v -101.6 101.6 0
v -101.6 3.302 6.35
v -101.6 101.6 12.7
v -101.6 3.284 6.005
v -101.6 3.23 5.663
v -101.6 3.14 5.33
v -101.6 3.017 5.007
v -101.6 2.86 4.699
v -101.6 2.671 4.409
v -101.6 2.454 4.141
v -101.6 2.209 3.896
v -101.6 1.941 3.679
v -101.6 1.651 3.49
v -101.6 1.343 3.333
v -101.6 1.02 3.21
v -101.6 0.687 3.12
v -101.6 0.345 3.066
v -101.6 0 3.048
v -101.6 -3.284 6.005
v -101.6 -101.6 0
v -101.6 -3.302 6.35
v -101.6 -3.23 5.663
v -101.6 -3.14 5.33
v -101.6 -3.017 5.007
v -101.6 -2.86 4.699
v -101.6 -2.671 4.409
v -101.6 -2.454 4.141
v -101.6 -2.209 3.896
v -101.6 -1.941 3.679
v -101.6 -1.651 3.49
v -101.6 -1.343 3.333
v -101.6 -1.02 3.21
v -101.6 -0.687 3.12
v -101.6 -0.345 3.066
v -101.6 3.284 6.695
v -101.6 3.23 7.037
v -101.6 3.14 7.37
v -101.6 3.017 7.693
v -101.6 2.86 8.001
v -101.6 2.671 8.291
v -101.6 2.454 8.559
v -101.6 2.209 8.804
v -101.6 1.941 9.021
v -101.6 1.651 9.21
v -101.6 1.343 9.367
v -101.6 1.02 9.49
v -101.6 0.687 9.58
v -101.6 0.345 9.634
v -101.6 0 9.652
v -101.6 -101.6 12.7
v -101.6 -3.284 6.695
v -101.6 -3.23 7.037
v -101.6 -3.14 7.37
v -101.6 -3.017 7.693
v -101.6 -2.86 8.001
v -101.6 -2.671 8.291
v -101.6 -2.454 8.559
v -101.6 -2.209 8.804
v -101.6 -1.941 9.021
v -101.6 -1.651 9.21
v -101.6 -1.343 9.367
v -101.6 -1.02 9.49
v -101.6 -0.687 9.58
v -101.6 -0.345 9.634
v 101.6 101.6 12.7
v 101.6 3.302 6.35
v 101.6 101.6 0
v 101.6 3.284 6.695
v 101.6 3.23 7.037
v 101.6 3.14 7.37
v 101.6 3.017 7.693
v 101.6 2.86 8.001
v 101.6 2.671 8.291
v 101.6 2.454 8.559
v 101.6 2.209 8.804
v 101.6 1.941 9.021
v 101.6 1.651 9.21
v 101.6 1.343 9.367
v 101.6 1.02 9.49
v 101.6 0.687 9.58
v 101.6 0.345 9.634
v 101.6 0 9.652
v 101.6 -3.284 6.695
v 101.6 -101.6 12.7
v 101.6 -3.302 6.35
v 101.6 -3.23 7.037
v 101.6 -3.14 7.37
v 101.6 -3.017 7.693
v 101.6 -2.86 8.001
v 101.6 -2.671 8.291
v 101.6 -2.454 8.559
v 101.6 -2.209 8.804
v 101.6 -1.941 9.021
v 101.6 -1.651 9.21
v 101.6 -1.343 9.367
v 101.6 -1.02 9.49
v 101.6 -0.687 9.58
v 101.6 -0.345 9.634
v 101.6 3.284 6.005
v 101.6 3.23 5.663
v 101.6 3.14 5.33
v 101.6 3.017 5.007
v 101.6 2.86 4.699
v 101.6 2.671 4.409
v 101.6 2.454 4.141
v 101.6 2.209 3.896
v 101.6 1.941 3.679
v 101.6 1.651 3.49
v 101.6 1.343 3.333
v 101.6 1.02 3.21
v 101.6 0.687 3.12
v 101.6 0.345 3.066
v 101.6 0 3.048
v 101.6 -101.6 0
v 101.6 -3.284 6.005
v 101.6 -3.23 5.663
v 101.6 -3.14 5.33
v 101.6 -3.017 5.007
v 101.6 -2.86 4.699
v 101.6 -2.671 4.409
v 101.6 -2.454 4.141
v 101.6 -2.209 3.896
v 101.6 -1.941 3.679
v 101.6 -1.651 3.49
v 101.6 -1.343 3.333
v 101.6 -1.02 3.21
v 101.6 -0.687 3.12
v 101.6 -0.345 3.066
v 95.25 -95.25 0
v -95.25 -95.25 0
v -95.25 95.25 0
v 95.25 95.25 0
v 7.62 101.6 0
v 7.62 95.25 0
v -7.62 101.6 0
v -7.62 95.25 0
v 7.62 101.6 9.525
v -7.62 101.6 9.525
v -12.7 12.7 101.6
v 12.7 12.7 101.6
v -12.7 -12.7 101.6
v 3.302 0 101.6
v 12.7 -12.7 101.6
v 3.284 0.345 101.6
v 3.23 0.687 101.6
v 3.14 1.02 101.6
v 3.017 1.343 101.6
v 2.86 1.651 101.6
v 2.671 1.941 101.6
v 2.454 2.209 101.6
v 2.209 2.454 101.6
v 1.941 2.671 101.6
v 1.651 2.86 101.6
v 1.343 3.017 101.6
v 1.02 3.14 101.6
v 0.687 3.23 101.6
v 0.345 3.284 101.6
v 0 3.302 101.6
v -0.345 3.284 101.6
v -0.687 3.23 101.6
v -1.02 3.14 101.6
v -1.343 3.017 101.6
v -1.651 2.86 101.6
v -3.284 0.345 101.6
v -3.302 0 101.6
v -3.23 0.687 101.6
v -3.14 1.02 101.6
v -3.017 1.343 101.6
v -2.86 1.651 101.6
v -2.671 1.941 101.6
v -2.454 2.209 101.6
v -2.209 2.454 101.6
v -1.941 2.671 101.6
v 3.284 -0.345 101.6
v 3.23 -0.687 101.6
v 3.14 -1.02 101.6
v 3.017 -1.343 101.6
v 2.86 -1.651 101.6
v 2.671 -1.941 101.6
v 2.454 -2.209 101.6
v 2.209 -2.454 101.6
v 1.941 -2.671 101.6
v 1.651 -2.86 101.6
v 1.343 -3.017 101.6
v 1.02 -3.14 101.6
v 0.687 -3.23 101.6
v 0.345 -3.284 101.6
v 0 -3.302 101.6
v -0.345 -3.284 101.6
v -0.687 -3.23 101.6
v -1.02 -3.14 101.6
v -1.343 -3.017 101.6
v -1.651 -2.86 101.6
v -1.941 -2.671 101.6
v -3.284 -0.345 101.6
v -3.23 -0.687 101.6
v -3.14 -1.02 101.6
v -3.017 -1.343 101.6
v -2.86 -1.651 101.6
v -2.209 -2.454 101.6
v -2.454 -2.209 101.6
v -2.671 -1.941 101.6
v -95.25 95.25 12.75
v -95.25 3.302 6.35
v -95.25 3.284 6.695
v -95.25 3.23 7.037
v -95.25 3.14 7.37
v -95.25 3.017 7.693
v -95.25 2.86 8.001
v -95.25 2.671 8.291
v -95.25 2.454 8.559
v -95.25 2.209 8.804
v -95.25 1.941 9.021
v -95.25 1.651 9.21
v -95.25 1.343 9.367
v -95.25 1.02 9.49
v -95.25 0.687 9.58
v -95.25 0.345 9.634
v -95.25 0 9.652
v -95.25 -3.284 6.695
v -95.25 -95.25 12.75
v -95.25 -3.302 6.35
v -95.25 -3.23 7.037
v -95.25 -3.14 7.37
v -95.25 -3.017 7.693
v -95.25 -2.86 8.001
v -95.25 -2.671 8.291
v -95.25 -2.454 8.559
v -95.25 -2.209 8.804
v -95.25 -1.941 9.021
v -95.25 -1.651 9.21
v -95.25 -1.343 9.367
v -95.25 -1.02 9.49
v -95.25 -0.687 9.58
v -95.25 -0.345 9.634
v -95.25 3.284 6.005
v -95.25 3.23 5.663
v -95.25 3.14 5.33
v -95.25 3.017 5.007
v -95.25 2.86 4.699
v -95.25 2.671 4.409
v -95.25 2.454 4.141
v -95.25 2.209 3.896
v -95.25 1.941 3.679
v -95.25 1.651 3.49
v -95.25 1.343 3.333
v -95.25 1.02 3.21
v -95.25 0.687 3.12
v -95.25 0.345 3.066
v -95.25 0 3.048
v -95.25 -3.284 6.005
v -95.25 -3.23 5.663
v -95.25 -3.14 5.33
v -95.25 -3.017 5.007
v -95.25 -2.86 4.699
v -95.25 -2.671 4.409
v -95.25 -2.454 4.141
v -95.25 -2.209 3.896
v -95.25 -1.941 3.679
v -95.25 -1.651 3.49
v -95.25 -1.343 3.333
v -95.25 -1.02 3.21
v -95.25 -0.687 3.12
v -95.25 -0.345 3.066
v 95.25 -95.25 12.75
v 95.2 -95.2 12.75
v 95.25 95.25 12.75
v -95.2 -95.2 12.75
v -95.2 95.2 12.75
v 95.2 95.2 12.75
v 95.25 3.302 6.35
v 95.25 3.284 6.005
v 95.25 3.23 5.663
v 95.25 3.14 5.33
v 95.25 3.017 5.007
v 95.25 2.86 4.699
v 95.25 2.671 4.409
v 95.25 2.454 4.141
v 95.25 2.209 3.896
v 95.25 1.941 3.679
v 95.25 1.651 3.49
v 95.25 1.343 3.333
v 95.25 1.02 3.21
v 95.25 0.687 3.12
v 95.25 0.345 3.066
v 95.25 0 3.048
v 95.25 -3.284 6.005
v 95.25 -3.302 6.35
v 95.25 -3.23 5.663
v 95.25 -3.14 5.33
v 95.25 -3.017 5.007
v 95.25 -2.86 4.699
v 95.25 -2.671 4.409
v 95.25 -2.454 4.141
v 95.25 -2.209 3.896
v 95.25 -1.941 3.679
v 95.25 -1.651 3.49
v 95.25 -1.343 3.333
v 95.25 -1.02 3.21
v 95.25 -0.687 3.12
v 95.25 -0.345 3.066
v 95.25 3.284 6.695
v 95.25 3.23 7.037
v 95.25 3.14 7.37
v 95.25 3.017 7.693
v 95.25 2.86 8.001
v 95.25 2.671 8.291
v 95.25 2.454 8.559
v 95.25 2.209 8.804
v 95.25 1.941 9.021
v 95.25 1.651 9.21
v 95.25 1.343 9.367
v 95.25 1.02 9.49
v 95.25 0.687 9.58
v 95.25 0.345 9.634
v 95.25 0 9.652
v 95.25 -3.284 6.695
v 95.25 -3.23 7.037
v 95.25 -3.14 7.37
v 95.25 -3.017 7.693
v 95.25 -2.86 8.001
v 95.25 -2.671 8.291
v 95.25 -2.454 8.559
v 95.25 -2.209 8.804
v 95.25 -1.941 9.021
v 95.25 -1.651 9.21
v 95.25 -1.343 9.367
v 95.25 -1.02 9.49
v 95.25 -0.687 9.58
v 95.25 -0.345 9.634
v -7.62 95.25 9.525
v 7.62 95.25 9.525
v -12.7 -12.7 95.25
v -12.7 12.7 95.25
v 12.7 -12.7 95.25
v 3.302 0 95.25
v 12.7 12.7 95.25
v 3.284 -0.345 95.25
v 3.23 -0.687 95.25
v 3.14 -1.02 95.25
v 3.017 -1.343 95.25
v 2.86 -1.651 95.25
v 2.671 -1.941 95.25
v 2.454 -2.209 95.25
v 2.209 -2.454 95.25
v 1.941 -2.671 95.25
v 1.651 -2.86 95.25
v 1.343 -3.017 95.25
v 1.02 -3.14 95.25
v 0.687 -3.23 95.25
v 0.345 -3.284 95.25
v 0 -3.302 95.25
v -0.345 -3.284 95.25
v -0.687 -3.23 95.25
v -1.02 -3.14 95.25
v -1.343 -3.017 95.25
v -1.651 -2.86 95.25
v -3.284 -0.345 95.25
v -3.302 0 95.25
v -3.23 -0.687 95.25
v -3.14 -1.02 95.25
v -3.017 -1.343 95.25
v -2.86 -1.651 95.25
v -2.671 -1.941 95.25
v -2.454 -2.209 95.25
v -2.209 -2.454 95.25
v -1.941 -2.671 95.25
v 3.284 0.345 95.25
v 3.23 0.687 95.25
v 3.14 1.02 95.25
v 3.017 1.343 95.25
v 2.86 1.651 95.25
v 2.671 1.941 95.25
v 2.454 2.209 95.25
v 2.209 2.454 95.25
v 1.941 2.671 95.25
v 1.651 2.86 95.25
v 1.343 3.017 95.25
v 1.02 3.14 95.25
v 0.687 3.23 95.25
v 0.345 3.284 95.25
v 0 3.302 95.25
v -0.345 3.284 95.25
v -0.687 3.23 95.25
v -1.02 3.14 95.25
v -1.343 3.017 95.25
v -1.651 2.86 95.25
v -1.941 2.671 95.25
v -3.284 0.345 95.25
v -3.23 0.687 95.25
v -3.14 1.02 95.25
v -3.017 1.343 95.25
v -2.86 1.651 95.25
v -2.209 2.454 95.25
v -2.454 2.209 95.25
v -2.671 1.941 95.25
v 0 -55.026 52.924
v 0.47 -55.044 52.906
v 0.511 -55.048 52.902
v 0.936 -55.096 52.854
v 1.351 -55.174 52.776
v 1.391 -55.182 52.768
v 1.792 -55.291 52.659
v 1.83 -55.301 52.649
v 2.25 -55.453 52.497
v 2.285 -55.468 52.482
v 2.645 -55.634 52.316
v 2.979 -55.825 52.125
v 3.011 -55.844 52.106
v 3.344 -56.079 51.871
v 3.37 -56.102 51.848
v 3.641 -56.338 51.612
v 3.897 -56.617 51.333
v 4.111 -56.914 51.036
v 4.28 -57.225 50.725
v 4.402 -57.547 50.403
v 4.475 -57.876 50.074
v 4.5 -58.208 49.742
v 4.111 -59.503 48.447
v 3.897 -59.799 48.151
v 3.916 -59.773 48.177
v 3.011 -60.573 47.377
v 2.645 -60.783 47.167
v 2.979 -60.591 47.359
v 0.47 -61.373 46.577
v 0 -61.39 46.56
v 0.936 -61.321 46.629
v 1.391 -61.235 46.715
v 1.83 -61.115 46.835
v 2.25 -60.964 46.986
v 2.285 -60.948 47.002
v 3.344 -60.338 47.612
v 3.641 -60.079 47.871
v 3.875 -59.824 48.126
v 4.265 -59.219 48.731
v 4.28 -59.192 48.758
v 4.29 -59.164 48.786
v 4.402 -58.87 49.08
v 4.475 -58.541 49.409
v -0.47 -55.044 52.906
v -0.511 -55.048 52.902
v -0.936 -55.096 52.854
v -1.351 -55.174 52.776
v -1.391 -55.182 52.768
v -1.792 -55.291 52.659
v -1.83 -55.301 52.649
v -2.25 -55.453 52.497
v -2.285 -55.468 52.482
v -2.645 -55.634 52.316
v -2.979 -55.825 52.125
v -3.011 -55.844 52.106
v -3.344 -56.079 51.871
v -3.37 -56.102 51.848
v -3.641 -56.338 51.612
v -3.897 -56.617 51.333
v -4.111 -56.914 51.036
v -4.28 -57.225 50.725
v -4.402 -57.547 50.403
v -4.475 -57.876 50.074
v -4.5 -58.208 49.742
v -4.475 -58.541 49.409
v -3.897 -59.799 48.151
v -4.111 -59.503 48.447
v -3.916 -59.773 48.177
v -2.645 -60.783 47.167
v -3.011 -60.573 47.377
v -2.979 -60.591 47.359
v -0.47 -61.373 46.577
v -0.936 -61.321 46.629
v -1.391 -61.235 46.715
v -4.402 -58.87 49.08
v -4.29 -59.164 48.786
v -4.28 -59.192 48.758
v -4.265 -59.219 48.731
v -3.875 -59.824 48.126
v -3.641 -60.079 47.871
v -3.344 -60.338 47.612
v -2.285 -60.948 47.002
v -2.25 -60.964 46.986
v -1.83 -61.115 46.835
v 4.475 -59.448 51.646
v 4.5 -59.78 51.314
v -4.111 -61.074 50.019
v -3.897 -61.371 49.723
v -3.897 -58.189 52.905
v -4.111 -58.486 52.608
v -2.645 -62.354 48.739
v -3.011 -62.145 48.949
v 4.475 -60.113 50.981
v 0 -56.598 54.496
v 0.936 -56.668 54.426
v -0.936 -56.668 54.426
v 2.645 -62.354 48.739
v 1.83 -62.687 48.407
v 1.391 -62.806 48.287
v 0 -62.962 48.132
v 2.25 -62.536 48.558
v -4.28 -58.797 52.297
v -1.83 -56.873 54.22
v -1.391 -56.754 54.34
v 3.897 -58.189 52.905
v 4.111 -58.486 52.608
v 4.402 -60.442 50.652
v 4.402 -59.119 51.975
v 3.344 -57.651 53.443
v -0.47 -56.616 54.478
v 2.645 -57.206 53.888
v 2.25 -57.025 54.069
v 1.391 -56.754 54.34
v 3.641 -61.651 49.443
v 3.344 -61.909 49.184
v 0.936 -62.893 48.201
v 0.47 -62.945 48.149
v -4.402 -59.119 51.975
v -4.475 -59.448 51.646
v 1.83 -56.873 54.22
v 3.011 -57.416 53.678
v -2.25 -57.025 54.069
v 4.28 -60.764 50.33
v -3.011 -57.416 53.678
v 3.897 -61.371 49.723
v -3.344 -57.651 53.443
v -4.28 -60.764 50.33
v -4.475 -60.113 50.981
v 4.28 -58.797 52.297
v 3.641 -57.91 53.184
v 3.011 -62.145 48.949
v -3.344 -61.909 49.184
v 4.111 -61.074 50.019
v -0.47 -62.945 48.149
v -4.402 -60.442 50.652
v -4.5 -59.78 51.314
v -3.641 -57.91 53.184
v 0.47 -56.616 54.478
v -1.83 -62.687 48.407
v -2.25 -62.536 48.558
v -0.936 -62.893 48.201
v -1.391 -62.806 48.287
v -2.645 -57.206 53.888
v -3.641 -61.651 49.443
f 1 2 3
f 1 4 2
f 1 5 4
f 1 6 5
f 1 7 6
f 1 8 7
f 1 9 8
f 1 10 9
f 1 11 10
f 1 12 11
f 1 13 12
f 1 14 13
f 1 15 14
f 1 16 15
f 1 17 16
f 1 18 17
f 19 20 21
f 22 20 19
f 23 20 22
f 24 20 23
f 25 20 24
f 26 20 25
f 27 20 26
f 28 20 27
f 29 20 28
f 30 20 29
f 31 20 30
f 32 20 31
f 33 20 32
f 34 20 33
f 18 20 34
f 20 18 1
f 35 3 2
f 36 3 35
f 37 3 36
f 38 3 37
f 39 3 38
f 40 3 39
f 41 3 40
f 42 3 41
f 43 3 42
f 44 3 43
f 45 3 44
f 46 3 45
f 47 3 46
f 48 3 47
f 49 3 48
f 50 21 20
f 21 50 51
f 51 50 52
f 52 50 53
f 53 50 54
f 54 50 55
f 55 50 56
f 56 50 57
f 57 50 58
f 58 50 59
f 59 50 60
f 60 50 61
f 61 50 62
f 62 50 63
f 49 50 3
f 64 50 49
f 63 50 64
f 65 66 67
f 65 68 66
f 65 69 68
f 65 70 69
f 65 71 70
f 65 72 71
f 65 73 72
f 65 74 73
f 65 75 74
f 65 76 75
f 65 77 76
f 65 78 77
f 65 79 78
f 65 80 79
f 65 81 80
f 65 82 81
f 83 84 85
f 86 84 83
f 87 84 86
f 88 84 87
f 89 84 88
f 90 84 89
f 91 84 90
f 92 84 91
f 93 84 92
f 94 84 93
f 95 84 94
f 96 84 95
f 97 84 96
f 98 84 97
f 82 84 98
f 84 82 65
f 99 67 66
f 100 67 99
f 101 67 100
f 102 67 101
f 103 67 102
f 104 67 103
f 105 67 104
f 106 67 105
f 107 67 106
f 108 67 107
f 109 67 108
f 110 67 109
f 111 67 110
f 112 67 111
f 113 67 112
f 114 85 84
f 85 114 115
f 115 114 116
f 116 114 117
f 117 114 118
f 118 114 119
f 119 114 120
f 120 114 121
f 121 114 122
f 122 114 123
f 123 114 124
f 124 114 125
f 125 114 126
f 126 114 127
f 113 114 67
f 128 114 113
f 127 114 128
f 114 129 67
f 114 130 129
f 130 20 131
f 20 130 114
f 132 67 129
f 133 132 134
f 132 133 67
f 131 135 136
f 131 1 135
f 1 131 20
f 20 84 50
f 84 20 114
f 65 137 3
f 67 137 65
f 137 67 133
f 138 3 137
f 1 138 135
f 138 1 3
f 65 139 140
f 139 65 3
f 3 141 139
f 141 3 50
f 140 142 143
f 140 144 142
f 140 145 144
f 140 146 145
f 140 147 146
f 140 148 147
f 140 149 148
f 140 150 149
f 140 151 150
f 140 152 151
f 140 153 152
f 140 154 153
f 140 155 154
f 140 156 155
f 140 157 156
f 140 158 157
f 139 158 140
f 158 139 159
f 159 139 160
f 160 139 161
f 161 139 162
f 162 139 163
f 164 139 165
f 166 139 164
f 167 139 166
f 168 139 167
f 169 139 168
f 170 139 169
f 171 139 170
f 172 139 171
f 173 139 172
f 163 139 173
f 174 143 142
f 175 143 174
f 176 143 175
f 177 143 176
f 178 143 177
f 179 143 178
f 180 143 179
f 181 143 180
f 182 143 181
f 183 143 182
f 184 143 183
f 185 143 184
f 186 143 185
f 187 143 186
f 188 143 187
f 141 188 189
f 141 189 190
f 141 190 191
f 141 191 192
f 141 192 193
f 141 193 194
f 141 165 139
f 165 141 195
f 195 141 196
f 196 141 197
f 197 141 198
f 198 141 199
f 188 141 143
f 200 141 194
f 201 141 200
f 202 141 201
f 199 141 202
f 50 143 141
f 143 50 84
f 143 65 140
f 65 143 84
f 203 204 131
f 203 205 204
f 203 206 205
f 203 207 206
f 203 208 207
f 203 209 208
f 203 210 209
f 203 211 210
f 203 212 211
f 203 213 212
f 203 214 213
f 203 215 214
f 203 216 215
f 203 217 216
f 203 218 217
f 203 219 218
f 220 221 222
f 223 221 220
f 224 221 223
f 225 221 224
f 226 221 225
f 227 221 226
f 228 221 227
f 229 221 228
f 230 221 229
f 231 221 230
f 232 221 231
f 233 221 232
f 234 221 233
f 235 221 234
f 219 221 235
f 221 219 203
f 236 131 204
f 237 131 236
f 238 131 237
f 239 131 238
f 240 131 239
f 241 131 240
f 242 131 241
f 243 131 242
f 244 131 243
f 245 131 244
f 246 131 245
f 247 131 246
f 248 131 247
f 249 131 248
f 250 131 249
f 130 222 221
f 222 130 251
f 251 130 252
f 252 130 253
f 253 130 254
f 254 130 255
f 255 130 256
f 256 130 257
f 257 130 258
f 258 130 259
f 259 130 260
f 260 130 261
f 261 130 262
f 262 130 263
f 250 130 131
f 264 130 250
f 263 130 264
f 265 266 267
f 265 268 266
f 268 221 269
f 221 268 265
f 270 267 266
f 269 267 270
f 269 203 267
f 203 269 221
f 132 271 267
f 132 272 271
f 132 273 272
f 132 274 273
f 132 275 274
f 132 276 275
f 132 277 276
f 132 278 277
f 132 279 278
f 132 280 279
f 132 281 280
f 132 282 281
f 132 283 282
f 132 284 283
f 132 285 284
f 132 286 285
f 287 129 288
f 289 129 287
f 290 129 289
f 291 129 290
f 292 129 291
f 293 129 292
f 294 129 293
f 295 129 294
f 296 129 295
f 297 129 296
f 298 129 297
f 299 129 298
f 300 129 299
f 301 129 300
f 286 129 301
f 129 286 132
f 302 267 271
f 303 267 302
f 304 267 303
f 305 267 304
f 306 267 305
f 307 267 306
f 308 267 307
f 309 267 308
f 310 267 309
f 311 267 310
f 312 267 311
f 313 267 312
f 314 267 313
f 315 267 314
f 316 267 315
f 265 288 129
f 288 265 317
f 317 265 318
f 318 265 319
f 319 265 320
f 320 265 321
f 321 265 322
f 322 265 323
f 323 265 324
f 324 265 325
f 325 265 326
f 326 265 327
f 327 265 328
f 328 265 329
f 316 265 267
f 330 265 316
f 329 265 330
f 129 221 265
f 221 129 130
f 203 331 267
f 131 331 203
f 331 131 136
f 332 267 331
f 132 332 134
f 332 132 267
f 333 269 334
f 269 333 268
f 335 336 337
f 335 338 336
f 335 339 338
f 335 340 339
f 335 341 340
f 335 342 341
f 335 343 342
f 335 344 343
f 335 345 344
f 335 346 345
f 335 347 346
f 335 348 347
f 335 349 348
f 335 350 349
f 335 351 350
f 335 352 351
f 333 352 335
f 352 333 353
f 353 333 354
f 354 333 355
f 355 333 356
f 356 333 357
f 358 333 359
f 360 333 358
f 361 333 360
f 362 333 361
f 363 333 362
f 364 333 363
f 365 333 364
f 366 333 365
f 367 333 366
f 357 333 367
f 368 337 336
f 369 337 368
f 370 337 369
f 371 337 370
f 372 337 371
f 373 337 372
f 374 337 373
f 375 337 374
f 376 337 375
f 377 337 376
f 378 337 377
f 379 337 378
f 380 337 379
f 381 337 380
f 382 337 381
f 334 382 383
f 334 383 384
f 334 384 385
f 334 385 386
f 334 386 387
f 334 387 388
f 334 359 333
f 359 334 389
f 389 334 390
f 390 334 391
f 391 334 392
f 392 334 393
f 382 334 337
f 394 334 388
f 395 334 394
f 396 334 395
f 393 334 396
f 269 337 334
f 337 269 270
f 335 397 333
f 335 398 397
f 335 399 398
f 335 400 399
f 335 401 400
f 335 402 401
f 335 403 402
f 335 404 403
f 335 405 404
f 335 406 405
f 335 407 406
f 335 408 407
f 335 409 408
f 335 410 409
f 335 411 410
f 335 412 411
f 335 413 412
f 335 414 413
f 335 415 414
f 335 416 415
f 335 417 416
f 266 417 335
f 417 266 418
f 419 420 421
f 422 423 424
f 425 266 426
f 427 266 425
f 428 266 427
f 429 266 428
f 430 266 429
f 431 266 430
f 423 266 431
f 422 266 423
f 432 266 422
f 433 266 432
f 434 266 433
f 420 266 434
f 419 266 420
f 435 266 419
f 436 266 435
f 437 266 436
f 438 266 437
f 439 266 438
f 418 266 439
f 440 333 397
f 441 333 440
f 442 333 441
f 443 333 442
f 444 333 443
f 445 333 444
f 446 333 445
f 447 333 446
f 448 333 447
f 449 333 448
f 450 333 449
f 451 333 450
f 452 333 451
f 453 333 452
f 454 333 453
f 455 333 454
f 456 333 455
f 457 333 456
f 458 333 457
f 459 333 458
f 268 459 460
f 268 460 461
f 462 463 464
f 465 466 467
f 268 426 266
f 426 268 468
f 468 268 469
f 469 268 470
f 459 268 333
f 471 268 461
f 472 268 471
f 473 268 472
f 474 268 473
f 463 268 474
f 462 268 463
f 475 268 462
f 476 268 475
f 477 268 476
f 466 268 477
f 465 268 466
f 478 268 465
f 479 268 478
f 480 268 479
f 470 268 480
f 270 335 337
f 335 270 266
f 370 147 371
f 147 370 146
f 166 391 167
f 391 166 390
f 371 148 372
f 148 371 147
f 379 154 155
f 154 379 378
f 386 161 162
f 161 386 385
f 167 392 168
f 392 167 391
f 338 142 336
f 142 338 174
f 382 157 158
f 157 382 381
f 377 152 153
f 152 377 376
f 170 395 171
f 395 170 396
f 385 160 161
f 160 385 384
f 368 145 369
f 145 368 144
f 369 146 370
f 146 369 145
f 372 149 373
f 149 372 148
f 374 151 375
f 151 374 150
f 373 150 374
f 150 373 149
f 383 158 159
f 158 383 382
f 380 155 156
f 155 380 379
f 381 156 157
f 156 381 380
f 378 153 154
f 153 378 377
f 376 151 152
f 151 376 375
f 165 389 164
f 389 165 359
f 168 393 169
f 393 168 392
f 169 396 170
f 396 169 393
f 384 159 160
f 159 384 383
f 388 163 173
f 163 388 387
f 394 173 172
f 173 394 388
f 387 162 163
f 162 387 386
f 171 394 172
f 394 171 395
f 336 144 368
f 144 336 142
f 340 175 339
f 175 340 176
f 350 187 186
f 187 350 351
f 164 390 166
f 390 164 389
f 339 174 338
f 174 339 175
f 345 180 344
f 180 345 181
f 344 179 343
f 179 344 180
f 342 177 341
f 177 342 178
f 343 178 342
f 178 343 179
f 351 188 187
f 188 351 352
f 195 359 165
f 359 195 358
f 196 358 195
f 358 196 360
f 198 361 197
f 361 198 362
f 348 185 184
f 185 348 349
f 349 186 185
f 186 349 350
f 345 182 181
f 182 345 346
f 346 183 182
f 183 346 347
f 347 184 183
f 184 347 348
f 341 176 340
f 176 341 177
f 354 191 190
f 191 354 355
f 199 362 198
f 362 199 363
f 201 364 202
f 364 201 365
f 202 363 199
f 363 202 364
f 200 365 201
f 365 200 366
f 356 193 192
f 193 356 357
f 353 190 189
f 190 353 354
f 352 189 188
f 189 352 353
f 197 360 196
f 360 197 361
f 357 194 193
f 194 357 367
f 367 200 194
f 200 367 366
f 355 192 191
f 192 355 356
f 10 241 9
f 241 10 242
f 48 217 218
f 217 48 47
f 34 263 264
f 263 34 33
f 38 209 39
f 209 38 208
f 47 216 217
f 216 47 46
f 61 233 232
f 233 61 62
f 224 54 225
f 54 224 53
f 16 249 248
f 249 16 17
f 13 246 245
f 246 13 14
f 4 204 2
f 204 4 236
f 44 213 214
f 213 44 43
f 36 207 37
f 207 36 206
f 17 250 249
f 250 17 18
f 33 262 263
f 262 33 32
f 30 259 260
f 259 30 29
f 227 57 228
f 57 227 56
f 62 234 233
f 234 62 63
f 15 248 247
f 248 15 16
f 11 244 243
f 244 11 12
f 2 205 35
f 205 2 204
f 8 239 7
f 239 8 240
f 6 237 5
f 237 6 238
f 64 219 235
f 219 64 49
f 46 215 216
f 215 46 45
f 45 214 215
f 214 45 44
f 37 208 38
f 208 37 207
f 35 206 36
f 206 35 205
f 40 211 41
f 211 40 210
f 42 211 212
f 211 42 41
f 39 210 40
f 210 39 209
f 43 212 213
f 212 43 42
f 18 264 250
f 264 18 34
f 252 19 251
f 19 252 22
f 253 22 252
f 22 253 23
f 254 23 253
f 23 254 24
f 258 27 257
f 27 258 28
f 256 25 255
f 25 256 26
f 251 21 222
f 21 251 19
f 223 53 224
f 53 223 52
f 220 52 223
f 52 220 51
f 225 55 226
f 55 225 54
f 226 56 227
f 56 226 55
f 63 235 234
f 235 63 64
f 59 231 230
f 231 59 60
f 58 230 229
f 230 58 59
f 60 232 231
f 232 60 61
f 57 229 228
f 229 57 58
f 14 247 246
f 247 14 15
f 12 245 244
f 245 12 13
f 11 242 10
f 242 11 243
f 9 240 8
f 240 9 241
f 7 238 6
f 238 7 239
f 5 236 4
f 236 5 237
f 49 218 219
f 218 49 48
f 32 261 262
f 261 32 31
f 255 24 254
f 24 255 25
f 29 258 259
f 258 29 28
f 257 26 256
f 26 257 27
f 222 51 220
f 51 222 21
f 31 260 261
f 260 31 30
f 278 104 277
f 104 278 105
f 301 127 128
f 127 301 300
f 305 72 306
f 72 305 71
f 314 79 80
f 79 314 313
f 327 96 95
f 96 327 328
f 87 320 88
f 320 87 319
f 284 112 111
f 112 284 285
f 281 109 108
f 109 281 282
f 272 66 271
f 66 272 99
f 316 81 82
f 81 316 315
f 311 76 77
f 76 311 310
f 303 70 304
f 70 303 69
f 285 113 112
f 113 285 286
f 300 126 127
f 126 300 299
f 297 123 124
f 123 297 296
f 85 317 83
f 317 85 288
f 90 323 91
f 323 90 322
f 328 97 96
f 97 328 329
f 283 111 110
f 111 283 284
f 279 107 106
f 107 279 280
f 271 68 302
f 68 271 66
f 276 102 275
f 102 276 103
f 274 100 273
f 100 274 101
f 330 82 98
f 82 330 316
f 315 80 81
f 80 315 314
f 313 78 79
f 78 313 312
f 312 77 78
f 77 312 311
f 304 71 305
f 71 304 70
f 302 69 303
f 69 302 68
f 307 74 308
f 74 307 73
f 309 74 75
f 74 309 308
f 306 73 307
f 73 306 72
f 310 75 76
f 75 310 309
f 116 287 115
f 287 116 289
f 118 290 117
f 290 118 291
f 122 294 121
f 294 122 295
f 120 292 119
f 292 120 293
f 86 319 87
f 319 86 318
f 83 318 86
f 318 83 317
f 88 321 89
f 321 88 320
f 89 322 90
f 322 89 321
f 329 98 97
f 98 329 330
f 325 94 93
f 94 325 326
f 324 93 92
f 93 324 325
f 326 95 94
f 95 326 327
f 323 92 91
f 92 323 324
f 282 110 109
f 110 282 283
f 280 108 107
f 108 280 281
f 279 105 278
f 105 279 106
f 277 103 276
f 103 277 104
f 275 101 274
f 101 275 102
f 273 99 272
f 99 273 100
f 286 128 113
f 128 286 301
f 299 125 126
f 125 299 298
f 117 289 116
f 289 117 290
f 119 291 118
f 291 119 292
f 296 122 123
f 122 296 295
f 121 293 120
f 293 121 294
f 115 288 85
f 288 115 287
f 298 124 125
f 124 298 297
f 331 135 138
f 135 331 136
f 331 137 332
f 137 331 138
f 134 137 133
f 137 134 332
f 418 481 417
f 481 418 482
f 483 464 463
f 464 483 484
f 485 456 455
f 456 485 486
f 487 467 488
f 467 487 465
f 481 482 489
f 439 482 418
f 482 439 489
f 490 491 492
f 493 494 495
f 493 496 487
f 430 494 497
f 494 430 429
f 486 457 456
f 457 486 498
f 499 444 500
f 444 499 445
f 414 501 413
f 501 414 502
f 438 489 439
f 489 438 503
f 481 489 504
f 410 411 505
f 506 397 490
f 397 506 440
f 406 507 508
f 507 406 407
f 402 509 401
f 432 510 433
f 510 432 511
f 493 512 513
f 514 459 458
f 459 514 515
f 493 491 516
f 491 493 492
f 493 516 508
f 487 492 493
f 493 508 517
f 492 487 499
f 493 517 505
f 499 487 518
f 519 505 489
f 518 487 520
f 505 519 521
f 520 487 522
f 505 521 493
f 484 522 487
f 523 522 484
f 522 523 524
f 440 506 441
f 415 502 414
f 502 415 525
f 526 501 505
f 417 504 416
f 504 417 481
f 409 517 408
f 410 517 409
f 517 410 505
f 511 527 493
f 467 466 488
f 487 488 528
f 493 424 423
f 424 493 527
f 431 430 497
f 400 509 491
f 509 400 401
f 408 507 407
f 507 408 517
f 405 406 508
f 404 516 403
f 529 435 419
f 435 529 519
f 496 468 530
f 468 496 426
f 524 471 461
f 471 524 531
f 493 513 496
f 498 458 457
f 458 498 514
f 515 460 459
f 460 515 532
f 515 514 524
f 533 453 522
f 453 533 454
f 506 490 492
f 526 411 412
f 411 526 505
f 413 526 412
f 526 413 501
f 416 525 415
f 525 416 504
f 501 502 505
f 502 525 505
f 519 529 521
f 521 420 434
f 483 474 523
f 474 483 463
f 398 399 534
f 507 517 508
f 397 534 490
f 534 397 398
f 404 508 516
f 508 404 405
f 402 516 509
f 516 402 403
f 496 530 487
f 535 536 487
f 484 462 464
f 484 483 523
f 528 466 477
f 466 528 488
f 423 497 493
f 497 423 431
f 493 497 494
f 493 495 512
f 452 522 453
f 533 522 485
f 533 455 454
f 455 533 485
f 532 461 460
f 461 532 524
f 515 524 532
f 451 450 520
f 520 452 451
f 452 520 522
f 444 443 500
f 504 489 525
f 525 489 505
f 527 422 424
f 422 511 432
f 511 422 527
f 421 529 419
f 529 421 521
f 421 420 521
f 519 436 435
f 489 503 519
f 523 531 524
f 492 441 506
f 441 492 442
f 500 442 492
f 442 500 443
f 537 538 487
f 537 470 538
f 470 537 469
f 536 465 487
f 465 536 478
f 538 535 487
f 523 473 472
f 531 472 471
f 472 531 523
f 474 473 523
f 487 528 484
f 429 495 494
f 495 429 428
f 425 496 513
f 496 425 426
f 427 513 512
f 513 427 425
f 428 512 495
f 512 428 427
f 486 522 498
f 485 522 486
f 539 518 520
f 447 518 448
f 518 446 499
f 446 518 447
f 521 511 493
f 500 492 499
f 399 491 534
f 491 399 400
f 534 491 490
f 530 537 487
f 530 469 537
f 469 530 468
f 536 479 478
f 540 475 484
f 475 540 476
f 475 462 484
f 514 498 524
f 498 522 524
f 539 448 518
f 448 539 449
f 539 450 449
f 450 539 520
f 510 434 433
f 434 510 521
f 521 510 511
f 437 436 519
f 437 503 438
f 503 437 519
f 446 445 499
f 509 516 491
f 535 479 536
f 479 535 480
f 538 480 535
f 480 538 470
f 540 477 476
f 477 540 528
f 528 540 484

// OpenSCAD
// All-Seeing Eye Enclosure Design
// Unit: mm (Converted from freedom units)

/* [Global Dimensions] */
INCH = 25.4;

// Base Specifications
// 8.0 inches (203.2 mm) outer width
base_width = 8.0 * INCH;
base_height = 0.5 * INCH;
wall_thickness = 0.25 * INCH;

// Pyramid Specifications
// Slope is 45 degrees.
slope_angle = 45; 

// Top flat area for SMA connector
top_width = 1.0 * INCH; 

// Calculate pyramid height based on slope and top width
// height = run * tan(angle). Since angle is 45, tan is 1.
pyramid_height = (base_width - top_width) / 2;

/* [Interface Dimensions] */
// Connector Dimensions
sma_hole_diameter = 0.26 * INCH;
usb_cutout_width = 0.6 * INCH;
usb_cutout_height = 0.3 * INCH;
usb_cable_clearance = 0.5 * INCH;

// ESP32-S3 Board Dimensions & Mounting
// PCB Physical Dimensions
pcb_width = 28.0;  // Measured: 2.8cm
pcb_length = 58.0; // Measured: 5.8cm
pcb_thickness = 1.6; // Standard PCB thickness (approx)

// LED Position Logic
// "Left side of board to right side of LED is 11mm"
// LED is 6mm wide.
// Center X = Right Edge (11) - Half Width (3) = 8mm from left edge?
// Re-read carefuly: "left side of board to right side of led is 11mm"
// So LED Right Edge is at X=11.
// LED Left Edge is at X=11-6 = 5.
// LED Center X = 5 + 3 = 8mm.
// Confirm centering: If PCB is 28mm wide... Center is 14mm.
// 8mm is definitely not centered on PCB. It's offset to left.

// "Top of LED to bottom of USB is 21mm"
// LED is 6mm tall.
// "Bottom of USB" = Bottom edge of PCB (Datum Y=0)
// "Top of LED" is at Y=21.
// LED Bottom Edge is at Y=21-6 = 15.
// LED Center Y = 15 + 3 = 18mm from bottom edge.

led_center_x = 8.0;  // From left edge
led_center_y = 18.0; // From bottom edge (USB end)
led_size = 6.0;

// Mounting Config
// The board should be mounted inside the pyramid.
// We need to place it such that the LED Center aligns with a new hole on the front face.
// Front Face is -Y face.
// The hole should be centered horizontally on the face.
// But the LED is NOT centered on the PCB (8mm vs 14mm center).
// So the PCB must be mounted OFFSET from the pyramid center line by (14 - 8) = 6mm.

/* [Rendering resolution] */
$fn = 60;

module main() {
    difference() {
        // 1. Positive Volume (The Shell)
        union() {
            // A. Base Prism
            translate([0, 0, base_height/2])
                cube([base_width, base_width, base_height], center=true);
            
            // B. Pyramid Frustum
            translate([0, 0, base_height])
                pyramid_frustum(base_width, top_width, pyramid_height);
        }

        // 2. Negative Volume (The Hollow)
        union() {
            // A. Hollow Base
            translate([0, 0, base_height/2])
                cube([base_width - 2*wall_thickness, base_width - 2*wall_thickness, base_height + 0.1], center=true);
            
            // B. Hollow Pyramid
            inner_height = pyramid_height - wall_thickness;
            inner_base_width = base_width - 2*wall_thickness;
            inner_top_width = top_width;

            translate([0, 0, base_height])
                 pyramid_frustum(inner_base_width, inner_top_width, inner_height);
        }

        // 3. Cutouts / Holes
        
        // A. Top SMA Connector (Apex)
        // Must penetrate the roof thickness.
        translate([0, 0, base_height + pyramid_height - wall_thickness - 1]) 
            cylinder(h = wall_thickness + 2, d = sma_hole_diameter, center = false);

        // B. Left Face SMA (WiFi)
        translate([-base_width/2 + wall_thickness/2, 0, base_height/2])
            rotate([0, 90, 0])
            cylinder(h = wall_thickness + 2, d = sma_hole_diameter, center = true);

        // C. Right Face SMA (Meshtastic)
        translate([base_width/2 - wall_thickness/2, 0, base_height/2])
            rotate([0, 90, 0])
            cylinder(h = wall_thickness + 2, d = sma_hole_diameter, center = true);

        // D. Rear Face USB
        translate([0, base_width/2 - wall_thickness/2, 0])
            cube([usb_cutout_width, wall_thickness + 2, base_height*1.5], center = true);
            
        // E. Front Face Eye Hole (NEW)
        // Located on the -Y face.
        // Needs to clearly show the LED.
        // Let's place it at a height reasonable for the board mounting.
        // If board is mounted vertically, Y is Up. IF mounted horizontally, Z is up.
        // We haven't defined mounting orientation yet, but user wants hole on Face.
        // Let's create a placeholder hole half-way up the face for now to show intent.
        
        eye_hole_y_offset = -base_width/4; // Rough position on -Y face
        eye_hole_z_height = base_height + pyramid_height/3; 
        
        // Project a cylinder perpendicular to the 45 deg face
        translate([0, -base_width/4, eye_hole_z_height]) 
            rotate([45, 0, 0]) // Angle to match face normal roughly (check math later)
            cylinder(h = wall_thickness * 4, d = led_size * 1.5, center = true);
    }
}

// Module to create a centered 4-sided pyramid frustum
module pyramid_frustum(base_w, top_w, h) {
    r_base = (base_w / 2) * sqrt(2);
    r_top = (top_w / 2) * sqrt(2);
    
    rotate([0, 0, 45])
        cylinder(h=h, r1=r_base, r2=r_top, $fn=4);
}

main();
